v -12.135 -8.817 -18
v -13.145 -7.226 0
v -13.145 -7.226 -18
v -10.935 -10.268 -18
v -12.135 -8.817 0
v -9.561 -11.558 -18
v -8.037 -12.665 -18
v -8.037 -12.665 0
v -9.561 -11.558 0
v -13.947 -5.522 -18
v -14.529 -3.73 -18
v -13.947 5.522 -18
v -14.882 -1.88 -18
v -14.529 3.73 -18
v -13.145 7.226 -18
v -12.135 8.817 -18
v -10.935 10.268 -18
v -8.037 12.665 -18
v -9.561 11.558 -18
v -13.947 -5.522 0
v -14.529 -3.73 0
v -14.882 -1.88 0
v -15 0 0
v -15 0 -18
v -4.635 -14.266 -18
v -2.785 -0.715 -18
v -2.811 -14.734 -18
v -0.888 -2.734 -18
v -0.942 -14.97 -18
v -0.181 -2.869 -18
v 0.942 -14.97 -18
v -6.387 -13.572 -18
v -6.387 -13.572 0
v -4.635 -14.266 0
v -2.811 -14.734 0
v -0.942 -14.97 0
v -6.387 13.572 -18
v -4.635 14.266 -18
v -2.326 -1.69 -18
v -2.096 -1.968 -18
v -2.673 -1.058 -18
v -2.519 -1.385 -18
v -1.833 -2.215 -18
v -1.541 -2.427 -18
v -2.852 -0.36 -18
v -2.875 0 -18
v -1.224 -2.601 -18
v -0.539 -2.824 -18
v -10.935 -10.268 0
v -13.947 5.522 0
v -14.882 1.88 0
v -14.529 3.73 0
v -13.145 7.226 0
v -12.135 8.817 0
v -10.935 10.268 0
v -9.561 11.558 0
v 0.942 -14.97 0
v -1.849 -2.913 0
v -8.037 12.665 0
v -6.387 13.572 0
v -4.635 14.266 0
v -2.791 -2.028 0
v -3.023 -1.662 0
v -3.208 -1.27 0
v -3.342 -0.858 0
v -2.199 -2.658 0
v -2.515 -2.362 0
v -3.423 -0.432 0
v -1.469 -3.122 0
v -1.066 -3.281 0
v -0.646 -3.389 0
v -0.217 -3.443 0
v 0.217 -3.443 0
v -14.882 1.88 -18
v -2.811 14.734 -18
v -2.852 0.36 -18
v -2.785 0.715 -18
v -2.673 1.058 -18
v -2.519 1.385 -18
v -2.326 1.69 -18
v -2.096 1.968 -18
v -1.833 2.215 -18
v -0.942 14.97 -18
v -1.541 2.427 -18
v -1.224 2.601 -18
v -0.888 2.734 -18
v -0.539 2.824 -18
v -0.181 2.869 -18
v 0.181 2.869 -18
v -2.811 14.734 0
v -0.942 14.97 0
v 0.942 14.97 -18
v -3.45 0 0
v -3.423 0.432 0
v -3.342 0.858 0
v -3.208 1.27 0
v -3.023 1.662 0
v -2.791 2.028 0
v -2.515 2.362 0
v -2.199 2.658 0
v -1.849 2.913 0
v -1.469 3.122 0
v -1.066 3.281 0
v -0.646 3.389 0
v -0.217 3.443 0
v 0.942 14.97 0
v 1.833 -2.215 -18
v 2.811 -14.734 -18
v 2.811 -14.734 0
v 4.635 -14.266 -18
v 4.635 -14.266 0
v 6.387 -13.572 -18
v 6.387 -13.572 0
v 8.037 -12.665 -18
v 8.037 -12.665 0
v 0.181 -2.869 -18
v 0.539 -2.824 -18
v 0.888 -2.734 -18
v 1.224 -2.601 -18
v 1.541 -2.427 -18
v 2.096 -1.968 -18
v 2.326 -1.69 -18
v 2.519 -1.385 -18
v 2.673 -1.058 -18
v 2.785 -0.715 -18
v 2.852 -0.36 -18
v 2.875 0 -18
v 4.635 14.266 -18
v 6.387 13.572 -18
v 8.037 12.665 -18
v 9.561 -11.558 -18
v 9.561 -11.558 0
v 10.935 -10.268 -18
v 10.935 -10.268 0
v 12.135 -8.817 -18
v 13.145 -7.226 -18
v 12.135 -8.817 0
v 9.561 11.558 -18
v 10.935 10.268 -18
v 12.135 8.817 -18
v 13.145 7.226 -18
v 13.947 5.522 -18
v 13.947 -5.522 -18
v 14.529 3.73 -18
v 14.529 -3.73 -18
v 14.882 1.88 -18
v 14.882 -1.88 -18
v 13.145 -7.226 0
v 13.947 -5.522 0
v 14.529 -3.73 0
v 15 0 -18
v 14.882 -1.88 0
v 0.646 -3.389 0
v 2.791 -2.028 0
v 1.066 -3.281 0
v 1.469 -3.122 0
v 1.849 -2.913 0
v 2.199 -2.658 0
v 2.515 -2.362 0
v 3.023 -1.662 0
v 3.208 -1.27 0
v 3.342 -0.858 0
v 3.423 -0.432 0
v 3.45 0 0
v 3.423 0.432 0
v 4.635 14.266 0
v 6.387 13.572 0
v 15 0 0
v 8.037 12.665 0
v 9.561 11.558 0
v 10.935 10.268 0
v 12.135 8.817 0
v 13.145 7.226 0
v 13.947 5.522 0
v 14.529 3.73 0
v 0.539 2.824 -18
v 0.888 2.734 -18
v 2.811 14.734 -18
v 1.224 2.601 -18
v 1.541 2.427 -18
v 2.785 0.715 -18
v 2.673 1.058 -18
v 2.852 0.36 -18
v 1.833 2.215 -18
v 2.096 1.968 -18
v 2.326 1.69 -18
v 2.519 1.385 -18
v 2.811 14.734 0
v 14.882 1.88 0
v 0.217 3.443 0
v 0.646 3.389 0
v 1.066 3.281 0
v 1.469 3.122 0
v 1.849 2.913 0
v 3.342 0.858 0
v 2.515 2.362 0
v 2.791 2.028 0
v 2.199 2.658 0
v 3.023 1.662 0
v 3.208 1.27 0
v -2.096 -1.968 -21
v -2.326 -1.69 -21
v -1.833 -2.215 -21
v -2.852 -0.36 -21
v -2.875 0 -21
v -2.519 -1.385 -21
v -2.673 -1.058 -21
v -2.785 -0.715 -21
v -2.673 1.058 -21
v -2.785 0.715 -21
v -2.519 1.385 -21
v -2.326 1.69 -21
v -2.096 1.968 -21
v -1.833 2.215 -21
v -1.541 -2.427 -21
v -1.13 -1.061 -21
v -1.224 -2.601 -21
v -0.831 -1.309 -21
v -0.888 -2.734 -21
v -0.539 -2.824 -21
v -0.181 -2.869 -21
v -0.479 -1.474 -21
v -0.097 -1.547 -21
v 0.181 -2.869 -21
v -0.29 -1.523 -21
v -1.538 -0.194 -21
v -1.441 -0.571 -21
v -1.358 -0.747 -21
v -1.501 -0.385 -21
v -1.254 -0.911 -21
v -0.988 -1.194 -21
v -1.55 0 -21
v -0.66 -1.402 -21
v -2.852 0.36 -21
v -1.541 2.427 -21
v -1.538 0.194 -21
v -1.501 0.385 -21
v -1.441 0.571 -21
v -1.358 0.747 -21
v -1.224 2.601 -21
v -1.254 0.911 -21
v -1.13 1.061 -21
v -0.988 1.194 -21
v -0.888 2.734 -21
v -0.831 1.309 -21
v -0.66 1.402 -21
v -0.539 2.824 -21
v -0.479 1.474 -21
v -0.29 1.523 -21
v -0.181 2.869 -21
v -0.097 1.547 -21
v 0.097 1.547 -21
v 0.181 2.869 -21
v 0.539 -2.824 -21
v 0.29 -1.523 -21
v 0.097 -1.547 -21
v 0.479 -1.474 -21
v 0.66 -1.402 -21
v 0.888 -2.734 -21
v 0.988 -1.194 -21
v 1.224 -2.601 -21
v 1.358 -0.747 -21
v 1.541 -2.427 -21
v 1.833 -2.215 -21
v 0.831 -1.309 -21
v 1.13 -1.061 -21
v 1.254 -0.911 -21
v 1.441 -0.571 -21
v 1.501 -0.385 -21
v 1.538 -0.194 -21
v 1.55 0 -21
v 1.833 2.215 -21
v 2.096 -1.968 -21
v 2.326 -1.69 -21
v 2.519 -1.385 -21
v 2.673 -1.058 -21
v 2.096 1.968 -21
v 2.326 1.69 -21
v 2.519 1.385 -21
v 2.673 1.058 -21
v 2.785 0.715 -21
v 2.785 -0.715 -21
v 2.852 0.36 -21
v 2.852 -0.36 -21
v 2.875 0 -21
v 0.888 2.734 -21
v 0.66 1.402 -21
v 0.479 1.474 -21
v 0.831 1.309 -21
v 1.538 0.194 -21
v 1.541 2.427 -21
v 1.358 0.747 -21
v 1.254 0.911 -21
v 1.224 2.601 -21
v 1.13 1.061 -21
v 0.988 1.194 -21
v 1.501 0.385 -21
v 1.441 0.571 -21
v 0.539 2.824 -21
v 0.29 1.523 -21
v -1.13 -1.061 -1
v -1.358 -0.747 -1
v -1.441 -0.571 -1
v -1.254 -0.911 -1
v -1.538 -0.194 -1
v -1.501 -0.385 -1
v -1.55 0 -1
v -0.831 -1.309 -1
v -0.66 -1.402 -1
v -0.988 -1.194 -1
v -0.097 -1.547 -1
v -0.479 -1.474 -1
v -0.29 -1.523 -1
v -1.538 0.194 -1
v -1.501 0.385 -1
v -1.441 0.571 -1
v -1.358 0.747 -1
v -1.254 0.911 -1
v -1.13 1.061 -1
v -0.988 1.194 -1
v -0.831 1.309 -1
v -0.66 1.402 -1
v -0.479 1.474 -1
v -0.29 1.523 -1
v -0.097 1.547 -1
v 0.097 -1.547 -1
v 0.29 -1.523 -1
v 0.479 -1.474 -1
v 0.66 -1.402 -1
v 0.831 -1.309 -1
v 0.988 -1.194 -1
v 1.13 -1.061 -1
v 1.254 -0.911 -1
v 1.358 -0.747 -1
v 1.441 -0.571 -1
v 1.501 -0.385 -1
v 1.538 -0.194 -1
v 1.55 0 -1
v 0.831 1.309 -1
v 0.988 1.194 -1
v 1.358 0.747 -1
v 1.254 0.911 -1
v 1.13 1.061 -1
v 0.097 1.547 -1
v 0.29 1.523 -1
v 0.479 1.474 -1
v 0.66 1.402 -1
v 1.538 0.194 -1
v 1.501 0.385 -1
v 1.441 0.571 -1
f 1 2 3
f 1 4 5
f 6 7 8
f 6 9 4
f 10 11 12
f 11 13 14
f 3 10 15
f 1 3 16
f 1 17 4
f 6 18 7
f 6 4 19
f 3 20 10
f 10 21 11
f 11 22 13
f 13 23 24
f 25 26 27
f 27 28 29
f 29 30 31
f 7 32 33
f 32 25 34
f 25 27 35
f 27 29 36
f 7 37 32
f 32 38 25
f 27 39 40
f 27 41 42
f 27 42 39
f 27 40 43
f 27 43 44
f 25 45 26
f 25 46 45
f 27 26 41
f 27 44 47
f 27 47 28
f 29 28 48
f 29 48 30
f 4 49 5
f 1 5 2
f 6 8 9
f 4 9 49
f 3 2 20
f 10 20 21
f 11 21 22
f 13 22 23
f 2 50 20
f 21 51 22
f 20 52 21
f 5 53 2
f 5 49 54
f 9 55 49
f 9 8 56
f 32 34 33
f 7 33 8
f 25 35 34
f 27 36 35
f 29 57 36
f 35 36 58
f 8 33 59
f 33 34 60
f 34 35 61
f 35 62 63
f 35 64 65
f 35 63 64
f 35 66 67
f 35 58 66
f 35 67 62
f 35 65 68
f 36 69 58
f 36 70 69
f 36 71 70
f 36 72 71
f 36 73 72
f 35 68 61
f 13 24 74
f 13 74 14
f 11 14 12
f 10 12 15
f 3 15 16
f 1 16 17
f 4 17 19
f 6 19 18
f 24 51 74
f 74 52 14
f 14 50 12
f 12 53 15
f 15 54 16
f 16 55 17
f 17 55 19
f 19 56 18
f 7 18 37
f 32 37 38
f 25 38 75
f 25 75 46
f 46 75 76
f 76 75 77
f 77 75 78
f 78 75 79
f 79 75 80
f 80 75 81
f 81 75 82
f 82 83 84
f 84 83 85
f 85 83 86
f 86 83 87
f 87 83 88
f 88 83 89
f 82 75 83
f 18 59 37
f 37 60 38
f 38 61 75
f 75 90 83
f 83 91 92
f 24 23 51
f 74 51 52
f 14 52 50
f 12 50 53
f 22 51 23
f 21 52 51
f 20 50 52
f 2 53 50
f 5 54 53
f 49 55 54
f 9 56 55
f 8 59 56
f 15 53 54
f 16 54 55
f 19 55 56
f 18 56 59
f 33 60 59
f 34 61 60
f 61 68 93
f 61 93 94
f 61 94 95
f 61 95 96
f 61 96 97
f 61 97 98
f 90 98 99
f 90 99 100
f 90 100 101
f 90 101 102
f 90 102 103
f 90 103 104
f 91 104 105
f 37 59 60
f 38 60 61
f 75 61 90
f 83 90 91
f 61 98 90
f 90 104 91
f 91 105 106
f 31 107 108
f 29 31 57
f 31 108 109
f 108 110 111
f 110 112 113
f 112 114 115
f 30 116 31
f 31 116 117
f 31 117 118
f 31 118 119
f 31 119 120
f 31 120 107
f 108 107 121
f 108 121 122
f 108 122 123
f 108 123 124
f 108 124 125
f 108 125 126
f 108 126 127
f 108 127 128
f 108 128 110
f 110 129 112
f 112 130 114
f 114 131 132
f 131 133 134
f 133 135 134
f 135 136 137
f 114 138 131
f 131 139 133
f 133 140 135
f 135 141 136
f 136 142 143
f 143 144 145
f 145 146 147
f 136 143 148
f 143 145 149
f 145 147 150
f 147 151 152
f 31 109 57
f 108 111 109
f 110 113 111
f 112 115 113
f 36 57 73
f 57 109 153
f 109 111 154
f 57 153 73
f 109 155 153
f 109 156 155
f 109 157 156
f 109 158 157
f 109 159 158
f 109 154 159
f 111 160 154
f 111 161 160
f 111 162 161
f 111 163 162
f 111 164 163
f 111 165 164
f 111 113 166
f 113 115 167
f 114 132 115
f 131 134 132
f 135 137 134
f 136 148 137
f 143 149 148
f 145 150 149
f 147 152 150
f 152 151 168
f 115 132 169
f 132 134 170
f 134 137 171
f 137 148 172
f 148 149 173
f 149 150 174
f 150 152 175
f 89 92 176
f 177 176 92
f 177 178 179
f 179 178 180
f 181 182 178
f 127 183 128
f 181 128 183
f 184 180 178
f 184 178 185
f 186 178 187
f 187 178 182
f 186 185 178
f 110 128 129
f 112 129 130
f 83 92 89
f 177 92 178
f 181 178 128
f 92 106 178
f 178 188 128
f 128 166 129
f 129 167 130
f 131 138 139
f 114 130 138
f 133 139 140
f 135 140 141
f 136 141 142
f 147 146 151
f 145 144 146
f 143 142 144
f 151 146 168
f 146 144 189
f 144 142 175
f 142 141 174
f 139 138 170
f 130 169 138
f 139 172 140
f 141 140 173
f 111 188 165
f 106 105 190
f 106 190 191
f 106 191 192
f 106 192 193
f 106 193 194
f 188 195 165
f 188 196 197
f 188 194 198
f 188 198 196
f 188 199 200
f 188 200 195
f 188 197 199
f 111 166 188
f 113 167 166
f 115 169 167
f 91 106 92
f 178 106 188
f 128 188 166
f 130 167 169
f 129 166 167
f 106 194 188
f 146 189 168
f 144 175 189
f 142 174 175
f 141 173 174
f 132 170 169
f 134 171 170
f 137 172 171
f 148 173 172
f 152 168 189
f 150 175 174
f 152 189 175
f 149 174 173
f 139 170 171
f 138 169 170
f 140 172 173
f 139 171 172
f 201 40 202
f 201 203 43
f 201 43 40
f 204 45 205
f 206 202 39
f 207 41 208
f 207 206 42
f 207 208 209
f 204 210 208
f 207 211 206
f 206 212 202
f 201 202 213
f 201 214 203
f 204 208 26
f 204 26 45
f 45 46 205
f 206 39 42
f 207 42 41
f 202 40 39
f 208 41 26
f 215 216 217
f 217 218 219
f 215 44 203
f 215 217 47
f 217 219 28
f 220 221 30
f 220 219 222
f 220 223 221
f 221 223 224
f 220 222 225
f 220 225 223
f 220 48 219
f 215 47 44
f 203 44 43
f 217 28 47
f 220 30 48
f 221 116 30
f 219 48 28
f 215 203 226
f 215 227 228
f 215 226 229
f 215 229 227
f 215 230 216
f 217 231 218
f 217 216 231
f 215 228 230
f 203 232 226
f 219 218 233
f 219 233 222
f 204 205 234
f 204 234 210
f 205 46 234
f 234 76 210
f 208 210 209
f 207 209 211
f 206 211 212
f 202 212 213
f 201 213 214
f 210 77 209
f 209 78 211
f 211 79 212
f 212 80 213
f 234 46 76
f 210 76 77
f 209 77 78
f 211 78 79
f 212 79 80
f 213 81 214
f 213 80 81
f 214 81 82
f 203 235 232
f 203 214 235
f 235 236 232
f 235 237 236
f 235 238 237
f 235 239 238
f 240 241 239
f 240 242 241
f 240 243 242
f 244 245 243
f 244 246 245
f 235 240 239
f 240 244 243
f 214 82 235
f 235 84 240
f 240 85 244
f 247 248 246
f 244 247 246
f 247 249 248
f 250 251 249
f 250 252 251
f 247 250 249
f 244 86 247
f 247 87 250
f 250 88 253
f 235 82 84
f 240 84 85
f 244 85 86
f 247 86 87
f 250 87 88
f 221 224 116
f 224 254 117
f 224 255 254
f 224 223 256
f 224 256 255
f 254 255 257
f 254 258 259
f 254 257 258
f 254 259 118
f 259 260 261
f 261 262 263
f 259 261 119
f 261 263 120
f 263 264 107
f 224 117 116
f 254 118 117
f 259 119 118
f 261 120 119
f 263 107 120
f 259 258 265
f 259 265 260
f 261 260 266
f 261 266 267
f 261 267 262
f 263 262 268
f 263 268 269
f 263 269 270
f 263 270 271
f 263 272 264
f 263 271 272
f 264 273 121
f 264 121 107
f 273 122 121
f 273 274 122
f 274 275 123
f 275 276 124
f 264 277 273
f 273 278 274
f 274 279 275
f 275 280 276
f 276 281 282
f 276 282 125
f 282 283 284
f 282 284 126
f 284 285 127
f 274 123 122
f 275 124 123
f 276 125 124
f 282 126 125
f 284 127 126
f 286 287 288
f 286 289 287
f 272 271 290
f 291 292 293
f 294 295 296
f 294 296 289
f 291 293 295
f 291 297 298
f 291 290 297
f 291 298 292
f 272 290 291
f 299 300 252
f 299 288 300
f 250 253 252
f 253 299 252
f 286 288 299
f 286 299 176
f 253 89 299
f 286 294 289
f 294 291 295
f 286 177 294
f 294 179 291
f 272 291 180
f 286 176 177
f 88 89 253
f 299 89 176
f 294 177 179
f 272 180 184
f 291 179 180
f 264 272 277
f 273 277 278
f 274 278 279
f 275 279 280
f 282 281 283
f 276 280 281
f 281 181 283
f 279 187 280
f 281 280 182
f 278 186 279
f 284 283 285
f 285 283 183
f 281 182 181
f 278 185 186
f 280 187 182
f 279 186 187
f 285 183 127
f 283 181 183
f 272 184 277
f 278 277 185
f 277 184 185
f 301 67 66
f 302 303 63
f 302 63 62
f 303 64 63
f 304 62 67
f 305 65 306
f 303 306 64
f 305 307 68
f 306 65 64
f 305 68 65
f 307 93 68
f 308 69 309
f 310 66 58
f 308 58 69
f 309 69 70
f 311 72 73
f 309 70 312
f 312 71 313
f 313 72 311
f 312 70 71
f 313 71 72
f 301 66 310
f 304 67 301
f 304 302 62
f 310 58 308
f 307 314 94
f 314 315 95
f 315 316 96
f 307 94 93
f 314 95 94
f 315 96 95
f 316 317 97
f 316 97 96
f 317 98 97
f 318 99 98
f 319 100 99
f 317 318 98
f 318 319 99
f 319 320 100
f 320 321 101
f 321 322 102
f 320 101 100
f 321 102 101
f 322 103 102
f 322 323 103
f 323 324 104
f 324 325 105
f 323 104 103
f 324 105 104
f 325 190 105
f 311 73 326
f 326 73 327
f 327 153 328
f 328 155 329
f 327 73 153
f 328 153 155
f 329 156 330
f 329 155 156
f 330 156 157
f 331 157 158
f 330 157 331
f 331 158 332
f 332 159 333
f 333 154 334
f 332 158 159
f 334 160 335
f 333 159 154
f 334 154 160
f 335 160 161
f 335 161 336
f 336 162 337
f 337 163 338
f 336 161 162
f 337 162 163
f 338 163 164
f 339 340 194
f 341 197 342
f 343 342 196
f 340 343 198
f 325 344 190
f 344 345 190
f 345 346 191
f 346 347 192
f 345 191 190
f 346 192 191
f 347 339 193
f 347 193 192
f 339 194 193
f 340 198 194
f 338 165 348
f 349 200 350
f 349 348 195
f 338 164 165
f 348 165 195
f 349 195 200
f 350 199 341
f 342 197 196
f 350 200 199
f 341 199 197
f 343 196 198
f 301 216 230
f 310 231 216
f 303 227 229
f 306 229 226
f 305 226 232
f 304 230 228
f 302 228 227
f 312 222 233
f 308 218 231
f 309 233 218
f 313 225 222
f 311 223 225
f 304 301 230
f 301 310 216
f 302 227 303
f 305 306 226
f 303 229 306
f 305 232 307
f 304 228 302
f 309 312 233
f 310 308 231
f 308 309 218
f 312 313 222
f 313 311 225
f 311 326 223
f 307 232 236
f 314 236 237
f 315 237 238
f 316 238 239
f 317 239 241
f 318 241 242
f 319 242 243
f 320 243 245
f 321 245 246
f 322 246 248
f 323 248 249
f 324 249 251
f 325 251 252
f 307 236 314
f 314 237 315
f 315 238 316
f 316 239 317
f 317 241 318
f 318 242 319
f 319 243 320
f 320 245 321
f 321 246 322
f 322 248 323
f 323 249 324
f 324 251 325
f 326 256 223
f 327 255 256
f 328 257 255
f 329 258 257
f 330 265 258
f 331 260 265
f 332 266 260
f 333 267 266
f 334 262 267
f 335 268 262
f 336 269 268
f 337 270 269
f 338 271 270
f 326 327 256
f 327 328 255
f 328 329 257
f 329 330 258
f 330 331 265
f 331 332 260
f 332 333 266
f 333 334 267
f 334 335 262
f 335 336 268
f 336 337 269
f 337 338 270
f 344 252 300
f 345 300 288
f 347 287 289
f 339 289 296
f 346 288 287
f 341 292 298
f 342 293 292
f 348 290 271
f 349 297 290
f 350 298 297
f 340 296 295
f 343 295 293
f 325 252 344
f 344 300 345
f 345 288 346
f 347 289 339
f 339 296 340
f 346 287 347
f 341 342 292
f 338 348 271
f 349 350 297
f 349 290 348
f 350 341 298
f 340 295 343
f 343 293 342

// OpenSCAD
$fn = 50;


difference() {
	union() {
		translate(v = [0, 0, -18.0000000000]) {
			cylinder(h = 18, r = 15.0000000000);
		}
		#translate(v = [0, 0, -21.0000000000]) {
			cylinder(h = 21, r = 2.8750000000);
		}
	}
	union() {
		translate(v = [0, 0, 0]) {
			rotate(a = [0, 0, 0]) {
				difference() {
					union() {
						translate(v = [0, 0, -21.0000000000]) {
							cylinder(h = 21, r = 1.2500000000);
						}
						translate(v = [0, 0, -1.0000000000]) {
							cylinder(h = 1.0000000000, r1 = 1.5500000000, r2 = 3.4500000000);
						}
						translate(v = [0, 0, -21.0000000000]) {
							cylinder(h = 21, r = 1.5500000000);
						}
						translate(v = [0, 0, -21.0000000000]) {
							cylinder(h = 21, r = 1.2500000000);
						}
					}
					union();
				}
			}
		}
	}
}
